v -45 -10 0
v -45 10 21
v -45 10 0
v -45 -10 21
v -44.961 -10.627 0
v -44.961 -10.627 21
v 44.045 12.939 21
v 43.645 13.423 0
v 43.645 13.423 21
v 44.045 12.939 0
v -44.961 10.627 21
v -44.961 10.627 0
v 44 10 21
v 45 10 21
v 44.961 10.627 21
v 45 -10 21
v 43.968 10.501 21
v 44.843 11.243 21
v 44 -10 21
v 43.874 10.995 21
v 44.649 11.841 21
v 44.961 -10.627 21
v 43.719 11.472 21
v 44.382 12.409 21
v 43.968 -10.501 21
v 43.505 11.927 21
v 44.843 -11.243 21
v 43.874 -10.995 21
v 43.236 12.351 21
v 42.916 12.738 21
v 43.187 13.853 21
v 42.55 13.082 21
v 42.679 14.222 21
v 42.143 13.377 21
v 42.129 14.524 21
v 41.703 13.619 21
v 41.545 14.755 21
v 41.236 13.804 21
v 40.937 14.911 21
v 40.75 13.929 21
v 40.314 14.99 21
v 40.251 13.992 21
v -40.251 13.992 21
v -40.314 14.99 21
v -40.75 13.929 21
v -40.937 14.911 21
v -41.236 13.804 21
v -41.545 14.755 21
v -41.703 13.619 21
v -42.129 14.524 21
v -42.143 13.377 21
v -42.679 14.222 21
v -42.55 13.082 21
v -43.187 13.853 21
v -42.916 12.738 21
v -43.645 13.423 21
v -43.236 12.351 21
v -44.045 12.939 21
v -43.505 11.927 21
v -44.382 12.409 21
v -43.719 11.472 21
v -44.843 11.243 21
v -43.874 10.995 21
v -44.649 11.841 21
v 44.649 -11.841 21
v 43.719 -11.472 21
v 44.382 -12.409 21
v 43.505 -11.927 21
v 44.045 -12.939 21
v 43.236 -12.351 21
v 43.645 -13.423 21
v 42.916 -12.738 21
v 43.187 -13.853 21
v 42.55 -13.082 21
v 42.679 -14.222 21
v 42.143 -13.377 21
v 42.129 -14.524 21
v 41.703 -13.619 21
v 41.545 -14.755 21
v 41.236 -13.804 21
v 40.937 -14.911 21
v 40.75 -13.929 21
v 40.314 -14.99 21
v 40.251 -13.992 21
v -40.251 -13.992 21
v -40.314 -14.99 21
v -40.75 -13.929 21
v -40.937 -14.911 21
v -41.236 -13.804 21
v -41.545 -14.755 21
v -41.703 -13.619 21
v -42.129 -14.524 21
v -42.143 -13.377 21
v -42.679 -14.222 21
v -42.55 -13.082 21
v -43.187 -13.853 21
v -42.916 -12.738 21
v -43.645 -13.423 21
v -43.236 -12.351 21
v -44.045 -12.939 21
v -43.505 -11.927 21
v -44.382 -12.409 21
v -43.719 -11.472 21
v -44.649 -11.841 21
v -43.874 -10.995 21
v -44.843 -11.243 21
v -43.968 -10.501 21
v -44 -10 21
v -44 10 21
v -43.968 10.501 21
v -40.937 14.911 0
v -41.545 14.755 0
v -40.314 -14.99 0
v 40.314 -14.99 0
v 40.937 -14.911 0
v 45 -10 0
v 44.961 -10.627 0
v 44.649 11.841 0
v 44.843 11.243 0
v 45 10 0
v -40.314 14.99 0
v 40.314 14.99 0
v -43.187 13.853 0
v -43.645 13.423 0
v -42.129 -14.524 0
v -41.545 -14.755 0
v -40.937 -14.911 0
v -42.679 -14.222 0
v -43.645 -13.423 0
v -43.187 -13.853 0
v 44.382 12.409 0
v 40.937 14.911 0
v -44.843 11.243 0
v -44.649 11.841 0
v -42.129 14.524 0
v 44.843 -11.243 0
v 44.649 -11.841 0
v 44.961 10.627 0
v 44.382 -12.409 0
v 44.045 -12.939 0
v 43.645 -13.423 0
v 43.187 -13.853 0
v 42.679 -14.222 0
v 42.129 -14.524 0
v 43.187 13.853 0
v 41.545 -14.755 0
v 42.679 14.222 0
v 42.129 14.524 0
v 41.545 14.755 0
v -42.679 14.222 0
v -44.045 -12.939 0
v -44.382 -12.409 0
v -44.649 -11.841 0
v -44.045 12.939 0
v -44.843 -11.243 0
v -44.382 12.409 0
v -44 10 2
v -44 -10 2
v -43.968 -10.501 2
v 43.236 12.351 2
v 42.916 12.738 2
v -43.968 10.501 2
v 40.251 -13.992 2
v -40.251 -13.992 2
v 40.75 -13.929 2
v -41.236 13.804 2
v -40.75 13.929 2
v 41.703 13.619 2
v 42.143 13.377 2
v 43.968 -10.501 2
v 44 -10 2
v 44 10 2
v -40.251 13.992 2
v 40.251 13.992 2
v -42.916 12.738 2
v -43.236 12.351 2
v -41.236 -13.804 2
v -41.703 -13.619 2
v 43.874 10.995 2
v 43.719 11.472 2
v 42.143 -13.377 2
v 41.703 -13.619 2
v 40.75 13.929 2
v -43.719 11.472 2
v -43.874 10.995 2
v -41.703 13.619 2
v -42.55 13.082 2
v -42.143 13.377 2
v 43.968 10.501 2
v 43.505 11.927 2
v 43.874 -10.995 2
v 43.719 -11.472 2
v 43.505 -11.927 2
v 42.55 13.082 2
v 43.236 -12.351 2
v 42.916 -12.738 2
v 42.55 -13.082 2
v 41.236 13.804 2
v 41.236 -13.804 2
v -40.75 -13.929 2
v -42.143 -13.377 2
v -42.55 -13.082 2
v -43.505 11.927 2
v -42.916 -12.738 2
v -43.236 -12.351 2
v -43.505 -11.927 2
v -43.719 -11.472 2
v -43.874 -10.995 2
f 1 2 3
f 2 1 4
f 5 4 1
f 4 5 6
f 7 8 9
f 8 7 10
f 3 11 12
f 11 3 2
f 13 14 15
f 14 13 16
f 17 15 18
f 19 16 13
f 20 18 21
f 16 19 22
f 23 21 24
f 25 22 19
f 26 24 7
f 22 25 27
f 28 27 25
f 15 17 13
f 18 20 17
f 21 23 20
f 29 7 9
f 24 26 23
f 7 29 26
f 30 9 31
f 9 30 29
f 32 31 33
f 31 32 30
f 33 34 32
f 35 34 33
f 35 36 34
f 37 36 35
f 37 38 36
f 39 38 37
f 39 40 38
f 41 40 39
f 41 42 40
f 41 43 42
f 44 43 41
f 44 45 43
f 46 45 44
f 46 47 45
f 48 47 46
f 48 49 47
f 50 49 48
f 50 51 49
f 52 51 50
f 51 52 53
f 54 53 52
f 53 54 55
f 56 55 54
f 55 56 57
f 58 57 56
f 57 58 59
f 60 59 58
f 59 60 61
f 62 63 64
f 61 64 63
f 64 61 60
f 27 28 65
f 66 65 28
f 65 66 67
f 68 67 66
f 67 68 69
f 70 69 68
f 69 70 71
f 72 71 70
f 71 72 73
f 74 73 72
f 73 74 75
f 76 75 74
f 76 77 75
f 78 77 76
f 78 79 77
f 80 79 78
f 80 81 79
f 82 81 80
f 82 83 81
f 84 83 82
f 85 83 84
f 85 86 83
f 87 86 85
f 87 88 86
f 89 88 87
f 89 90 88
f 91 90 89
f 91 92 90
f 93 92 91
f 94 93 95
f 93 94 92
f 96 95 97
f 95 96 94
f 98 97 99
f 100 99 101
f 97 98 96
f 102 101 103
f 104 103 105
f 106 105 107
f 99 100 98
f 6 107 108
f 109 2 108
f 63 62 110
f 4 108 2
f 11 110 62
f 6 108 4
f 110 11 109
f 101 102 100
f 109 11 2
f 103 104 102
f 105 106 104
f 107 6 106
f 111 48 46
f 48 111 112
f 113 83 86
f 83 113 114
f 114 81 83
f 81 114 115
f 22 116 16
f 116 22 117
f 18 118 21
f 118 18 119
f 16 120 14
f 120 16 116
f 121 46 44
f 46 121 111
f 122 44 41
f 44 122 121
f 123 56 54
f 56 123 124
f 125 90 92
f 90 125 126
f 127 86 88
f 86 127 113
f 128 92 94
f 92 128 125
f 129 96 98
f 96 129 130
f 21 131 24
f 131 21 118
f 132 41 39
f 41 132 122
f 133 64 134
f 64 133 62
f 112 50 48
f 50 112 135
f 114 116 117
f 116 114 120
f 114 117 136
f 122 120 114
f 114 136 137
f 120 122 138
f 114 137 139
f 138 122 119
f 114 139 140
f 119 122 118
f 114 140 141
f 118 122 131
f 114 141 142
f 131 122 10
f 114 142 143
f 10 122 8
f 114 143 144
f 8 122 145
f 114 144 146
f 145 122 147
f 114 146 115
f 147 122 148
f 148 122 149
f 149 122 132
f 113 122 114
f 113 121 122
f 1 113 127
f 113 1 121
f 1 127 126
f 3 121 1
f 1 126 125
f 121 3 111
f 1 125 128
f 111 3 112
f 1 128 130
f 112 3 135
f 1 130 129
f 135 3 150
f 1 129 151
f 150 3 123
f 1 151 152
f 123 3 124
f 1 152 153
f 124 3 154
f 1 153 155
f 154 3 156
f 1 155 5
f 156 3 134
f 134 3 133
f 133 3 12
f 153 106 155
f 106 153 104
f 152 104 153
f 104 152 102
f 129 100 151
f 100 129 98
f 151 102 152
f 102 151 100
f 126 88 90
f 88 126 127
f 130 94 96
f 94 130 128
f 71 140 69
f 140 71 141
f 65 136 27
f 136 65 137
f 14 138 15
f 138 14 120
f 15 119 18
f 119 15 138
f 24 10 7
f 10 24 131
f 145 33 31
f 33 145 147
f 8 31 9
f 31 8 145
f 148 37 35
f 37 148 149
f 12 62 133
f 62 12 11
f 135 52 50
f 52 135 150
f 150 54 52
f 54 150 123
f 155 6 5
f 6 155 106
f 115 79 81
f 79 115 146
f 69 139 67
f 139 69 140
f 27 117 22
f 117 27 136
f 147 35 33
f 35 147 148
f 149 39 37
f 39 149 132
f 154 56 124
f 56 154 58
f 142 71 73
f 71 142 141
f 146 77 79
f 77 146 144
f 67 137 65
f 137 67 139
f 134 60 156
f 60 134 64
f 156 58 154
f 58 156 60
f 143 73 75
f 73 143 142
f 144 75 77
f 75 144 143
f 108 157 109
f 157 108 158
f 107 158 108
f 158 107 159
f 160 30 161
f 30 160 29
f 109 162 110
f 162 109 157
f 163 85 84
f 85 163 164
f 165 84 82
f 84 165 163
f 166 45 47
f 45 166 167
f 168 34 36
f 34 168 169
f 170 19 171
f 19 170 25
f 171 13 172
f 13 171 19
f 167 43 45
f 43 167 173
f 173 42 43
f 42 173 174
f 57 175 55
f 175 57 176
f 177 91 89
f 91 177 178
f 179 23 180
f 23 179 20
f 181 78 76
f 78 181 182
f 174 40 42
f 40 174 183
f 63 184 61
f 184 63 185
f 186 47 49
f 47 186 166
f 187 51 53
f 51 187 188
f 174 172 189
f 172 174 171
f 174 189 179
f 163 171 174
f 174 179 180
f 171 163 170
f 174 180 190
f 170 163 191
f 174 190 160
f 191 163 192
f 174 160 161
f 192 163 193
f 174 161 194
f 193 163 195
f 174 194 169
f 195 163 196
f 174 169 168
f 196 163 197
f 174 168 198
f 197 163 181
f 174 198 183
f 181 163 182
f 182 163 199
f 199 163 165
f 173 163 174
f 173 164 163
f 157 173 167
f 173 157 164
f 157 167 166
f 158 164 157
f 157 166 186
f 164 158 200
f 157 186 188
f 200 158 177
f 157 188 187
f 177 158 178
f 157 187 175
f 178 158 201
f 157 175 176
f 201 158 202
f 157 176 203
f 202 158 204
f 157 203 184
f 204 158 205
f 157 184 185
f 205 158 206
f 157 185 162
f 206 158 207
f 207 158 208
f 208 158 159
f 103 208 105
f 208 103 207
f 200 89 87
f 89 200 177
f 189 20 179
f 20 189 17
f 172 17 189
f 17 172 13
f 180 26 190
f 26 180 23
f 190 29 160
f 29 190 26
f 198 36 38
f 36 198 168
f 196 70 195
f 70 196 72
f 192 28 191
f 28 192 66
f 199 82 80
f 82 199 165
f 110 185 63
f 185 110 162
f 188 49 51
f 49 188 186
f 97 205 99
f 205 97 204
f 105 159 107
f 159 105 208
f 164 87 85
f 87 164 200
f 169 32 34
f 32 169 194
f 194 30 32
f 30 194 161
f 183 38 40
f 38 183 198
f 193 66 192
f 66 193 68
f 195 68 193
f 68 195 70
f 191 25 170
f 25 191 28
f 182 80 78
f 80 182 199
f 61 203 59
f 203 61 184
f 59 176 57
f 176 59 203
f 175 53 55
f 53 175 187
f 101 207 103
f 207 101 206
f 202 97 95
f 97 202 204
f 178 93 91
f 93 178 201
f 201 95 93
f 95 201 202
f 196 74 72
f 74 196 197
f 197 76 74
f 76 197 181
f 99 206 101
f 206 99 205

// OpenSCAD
$fn = 50;


difference() {
	union() {
		hull() {
			translate(v = [-40.0000000000, 10.0000000000, 0]) {
				cylinder(h = 21, r = 5);
			}
			translate(v = [40.0000000000, 10.0000000000, 0]) {
				cylinder(h = 21, r = 5);
			}
			translate(v = [-40.0000000000, -10.0000000000, 0]) {
				cylinder(h = 21, r = 5);
			}
			translate(v = [40.0000000000, -10.0000000000, 0]) {
				cylinder(h = 21, r = 5);
			}
		}
	}
	union() {
		translate(v = [0, 0, 2]) {
			hull() {
				translate(v = [-40.0000000000, 10.0000000000, 0]) {
					cylinder(h = 19, r = 4);
				}
				translate(v = [40.0000000000, 10.0000000000, 0]) {
					cylinder(h = 19, r = 4);
				}
				translate(v = [-40.0000000000, -10.0000000000, 0]) {
					cylinder(h = 19, r = 4);
				}
				translate(v = [40.0000000000, -10.0000000000, 0]) {
					cylinder(h = 19, r = 4);
				}
			}
		}
	}
}
